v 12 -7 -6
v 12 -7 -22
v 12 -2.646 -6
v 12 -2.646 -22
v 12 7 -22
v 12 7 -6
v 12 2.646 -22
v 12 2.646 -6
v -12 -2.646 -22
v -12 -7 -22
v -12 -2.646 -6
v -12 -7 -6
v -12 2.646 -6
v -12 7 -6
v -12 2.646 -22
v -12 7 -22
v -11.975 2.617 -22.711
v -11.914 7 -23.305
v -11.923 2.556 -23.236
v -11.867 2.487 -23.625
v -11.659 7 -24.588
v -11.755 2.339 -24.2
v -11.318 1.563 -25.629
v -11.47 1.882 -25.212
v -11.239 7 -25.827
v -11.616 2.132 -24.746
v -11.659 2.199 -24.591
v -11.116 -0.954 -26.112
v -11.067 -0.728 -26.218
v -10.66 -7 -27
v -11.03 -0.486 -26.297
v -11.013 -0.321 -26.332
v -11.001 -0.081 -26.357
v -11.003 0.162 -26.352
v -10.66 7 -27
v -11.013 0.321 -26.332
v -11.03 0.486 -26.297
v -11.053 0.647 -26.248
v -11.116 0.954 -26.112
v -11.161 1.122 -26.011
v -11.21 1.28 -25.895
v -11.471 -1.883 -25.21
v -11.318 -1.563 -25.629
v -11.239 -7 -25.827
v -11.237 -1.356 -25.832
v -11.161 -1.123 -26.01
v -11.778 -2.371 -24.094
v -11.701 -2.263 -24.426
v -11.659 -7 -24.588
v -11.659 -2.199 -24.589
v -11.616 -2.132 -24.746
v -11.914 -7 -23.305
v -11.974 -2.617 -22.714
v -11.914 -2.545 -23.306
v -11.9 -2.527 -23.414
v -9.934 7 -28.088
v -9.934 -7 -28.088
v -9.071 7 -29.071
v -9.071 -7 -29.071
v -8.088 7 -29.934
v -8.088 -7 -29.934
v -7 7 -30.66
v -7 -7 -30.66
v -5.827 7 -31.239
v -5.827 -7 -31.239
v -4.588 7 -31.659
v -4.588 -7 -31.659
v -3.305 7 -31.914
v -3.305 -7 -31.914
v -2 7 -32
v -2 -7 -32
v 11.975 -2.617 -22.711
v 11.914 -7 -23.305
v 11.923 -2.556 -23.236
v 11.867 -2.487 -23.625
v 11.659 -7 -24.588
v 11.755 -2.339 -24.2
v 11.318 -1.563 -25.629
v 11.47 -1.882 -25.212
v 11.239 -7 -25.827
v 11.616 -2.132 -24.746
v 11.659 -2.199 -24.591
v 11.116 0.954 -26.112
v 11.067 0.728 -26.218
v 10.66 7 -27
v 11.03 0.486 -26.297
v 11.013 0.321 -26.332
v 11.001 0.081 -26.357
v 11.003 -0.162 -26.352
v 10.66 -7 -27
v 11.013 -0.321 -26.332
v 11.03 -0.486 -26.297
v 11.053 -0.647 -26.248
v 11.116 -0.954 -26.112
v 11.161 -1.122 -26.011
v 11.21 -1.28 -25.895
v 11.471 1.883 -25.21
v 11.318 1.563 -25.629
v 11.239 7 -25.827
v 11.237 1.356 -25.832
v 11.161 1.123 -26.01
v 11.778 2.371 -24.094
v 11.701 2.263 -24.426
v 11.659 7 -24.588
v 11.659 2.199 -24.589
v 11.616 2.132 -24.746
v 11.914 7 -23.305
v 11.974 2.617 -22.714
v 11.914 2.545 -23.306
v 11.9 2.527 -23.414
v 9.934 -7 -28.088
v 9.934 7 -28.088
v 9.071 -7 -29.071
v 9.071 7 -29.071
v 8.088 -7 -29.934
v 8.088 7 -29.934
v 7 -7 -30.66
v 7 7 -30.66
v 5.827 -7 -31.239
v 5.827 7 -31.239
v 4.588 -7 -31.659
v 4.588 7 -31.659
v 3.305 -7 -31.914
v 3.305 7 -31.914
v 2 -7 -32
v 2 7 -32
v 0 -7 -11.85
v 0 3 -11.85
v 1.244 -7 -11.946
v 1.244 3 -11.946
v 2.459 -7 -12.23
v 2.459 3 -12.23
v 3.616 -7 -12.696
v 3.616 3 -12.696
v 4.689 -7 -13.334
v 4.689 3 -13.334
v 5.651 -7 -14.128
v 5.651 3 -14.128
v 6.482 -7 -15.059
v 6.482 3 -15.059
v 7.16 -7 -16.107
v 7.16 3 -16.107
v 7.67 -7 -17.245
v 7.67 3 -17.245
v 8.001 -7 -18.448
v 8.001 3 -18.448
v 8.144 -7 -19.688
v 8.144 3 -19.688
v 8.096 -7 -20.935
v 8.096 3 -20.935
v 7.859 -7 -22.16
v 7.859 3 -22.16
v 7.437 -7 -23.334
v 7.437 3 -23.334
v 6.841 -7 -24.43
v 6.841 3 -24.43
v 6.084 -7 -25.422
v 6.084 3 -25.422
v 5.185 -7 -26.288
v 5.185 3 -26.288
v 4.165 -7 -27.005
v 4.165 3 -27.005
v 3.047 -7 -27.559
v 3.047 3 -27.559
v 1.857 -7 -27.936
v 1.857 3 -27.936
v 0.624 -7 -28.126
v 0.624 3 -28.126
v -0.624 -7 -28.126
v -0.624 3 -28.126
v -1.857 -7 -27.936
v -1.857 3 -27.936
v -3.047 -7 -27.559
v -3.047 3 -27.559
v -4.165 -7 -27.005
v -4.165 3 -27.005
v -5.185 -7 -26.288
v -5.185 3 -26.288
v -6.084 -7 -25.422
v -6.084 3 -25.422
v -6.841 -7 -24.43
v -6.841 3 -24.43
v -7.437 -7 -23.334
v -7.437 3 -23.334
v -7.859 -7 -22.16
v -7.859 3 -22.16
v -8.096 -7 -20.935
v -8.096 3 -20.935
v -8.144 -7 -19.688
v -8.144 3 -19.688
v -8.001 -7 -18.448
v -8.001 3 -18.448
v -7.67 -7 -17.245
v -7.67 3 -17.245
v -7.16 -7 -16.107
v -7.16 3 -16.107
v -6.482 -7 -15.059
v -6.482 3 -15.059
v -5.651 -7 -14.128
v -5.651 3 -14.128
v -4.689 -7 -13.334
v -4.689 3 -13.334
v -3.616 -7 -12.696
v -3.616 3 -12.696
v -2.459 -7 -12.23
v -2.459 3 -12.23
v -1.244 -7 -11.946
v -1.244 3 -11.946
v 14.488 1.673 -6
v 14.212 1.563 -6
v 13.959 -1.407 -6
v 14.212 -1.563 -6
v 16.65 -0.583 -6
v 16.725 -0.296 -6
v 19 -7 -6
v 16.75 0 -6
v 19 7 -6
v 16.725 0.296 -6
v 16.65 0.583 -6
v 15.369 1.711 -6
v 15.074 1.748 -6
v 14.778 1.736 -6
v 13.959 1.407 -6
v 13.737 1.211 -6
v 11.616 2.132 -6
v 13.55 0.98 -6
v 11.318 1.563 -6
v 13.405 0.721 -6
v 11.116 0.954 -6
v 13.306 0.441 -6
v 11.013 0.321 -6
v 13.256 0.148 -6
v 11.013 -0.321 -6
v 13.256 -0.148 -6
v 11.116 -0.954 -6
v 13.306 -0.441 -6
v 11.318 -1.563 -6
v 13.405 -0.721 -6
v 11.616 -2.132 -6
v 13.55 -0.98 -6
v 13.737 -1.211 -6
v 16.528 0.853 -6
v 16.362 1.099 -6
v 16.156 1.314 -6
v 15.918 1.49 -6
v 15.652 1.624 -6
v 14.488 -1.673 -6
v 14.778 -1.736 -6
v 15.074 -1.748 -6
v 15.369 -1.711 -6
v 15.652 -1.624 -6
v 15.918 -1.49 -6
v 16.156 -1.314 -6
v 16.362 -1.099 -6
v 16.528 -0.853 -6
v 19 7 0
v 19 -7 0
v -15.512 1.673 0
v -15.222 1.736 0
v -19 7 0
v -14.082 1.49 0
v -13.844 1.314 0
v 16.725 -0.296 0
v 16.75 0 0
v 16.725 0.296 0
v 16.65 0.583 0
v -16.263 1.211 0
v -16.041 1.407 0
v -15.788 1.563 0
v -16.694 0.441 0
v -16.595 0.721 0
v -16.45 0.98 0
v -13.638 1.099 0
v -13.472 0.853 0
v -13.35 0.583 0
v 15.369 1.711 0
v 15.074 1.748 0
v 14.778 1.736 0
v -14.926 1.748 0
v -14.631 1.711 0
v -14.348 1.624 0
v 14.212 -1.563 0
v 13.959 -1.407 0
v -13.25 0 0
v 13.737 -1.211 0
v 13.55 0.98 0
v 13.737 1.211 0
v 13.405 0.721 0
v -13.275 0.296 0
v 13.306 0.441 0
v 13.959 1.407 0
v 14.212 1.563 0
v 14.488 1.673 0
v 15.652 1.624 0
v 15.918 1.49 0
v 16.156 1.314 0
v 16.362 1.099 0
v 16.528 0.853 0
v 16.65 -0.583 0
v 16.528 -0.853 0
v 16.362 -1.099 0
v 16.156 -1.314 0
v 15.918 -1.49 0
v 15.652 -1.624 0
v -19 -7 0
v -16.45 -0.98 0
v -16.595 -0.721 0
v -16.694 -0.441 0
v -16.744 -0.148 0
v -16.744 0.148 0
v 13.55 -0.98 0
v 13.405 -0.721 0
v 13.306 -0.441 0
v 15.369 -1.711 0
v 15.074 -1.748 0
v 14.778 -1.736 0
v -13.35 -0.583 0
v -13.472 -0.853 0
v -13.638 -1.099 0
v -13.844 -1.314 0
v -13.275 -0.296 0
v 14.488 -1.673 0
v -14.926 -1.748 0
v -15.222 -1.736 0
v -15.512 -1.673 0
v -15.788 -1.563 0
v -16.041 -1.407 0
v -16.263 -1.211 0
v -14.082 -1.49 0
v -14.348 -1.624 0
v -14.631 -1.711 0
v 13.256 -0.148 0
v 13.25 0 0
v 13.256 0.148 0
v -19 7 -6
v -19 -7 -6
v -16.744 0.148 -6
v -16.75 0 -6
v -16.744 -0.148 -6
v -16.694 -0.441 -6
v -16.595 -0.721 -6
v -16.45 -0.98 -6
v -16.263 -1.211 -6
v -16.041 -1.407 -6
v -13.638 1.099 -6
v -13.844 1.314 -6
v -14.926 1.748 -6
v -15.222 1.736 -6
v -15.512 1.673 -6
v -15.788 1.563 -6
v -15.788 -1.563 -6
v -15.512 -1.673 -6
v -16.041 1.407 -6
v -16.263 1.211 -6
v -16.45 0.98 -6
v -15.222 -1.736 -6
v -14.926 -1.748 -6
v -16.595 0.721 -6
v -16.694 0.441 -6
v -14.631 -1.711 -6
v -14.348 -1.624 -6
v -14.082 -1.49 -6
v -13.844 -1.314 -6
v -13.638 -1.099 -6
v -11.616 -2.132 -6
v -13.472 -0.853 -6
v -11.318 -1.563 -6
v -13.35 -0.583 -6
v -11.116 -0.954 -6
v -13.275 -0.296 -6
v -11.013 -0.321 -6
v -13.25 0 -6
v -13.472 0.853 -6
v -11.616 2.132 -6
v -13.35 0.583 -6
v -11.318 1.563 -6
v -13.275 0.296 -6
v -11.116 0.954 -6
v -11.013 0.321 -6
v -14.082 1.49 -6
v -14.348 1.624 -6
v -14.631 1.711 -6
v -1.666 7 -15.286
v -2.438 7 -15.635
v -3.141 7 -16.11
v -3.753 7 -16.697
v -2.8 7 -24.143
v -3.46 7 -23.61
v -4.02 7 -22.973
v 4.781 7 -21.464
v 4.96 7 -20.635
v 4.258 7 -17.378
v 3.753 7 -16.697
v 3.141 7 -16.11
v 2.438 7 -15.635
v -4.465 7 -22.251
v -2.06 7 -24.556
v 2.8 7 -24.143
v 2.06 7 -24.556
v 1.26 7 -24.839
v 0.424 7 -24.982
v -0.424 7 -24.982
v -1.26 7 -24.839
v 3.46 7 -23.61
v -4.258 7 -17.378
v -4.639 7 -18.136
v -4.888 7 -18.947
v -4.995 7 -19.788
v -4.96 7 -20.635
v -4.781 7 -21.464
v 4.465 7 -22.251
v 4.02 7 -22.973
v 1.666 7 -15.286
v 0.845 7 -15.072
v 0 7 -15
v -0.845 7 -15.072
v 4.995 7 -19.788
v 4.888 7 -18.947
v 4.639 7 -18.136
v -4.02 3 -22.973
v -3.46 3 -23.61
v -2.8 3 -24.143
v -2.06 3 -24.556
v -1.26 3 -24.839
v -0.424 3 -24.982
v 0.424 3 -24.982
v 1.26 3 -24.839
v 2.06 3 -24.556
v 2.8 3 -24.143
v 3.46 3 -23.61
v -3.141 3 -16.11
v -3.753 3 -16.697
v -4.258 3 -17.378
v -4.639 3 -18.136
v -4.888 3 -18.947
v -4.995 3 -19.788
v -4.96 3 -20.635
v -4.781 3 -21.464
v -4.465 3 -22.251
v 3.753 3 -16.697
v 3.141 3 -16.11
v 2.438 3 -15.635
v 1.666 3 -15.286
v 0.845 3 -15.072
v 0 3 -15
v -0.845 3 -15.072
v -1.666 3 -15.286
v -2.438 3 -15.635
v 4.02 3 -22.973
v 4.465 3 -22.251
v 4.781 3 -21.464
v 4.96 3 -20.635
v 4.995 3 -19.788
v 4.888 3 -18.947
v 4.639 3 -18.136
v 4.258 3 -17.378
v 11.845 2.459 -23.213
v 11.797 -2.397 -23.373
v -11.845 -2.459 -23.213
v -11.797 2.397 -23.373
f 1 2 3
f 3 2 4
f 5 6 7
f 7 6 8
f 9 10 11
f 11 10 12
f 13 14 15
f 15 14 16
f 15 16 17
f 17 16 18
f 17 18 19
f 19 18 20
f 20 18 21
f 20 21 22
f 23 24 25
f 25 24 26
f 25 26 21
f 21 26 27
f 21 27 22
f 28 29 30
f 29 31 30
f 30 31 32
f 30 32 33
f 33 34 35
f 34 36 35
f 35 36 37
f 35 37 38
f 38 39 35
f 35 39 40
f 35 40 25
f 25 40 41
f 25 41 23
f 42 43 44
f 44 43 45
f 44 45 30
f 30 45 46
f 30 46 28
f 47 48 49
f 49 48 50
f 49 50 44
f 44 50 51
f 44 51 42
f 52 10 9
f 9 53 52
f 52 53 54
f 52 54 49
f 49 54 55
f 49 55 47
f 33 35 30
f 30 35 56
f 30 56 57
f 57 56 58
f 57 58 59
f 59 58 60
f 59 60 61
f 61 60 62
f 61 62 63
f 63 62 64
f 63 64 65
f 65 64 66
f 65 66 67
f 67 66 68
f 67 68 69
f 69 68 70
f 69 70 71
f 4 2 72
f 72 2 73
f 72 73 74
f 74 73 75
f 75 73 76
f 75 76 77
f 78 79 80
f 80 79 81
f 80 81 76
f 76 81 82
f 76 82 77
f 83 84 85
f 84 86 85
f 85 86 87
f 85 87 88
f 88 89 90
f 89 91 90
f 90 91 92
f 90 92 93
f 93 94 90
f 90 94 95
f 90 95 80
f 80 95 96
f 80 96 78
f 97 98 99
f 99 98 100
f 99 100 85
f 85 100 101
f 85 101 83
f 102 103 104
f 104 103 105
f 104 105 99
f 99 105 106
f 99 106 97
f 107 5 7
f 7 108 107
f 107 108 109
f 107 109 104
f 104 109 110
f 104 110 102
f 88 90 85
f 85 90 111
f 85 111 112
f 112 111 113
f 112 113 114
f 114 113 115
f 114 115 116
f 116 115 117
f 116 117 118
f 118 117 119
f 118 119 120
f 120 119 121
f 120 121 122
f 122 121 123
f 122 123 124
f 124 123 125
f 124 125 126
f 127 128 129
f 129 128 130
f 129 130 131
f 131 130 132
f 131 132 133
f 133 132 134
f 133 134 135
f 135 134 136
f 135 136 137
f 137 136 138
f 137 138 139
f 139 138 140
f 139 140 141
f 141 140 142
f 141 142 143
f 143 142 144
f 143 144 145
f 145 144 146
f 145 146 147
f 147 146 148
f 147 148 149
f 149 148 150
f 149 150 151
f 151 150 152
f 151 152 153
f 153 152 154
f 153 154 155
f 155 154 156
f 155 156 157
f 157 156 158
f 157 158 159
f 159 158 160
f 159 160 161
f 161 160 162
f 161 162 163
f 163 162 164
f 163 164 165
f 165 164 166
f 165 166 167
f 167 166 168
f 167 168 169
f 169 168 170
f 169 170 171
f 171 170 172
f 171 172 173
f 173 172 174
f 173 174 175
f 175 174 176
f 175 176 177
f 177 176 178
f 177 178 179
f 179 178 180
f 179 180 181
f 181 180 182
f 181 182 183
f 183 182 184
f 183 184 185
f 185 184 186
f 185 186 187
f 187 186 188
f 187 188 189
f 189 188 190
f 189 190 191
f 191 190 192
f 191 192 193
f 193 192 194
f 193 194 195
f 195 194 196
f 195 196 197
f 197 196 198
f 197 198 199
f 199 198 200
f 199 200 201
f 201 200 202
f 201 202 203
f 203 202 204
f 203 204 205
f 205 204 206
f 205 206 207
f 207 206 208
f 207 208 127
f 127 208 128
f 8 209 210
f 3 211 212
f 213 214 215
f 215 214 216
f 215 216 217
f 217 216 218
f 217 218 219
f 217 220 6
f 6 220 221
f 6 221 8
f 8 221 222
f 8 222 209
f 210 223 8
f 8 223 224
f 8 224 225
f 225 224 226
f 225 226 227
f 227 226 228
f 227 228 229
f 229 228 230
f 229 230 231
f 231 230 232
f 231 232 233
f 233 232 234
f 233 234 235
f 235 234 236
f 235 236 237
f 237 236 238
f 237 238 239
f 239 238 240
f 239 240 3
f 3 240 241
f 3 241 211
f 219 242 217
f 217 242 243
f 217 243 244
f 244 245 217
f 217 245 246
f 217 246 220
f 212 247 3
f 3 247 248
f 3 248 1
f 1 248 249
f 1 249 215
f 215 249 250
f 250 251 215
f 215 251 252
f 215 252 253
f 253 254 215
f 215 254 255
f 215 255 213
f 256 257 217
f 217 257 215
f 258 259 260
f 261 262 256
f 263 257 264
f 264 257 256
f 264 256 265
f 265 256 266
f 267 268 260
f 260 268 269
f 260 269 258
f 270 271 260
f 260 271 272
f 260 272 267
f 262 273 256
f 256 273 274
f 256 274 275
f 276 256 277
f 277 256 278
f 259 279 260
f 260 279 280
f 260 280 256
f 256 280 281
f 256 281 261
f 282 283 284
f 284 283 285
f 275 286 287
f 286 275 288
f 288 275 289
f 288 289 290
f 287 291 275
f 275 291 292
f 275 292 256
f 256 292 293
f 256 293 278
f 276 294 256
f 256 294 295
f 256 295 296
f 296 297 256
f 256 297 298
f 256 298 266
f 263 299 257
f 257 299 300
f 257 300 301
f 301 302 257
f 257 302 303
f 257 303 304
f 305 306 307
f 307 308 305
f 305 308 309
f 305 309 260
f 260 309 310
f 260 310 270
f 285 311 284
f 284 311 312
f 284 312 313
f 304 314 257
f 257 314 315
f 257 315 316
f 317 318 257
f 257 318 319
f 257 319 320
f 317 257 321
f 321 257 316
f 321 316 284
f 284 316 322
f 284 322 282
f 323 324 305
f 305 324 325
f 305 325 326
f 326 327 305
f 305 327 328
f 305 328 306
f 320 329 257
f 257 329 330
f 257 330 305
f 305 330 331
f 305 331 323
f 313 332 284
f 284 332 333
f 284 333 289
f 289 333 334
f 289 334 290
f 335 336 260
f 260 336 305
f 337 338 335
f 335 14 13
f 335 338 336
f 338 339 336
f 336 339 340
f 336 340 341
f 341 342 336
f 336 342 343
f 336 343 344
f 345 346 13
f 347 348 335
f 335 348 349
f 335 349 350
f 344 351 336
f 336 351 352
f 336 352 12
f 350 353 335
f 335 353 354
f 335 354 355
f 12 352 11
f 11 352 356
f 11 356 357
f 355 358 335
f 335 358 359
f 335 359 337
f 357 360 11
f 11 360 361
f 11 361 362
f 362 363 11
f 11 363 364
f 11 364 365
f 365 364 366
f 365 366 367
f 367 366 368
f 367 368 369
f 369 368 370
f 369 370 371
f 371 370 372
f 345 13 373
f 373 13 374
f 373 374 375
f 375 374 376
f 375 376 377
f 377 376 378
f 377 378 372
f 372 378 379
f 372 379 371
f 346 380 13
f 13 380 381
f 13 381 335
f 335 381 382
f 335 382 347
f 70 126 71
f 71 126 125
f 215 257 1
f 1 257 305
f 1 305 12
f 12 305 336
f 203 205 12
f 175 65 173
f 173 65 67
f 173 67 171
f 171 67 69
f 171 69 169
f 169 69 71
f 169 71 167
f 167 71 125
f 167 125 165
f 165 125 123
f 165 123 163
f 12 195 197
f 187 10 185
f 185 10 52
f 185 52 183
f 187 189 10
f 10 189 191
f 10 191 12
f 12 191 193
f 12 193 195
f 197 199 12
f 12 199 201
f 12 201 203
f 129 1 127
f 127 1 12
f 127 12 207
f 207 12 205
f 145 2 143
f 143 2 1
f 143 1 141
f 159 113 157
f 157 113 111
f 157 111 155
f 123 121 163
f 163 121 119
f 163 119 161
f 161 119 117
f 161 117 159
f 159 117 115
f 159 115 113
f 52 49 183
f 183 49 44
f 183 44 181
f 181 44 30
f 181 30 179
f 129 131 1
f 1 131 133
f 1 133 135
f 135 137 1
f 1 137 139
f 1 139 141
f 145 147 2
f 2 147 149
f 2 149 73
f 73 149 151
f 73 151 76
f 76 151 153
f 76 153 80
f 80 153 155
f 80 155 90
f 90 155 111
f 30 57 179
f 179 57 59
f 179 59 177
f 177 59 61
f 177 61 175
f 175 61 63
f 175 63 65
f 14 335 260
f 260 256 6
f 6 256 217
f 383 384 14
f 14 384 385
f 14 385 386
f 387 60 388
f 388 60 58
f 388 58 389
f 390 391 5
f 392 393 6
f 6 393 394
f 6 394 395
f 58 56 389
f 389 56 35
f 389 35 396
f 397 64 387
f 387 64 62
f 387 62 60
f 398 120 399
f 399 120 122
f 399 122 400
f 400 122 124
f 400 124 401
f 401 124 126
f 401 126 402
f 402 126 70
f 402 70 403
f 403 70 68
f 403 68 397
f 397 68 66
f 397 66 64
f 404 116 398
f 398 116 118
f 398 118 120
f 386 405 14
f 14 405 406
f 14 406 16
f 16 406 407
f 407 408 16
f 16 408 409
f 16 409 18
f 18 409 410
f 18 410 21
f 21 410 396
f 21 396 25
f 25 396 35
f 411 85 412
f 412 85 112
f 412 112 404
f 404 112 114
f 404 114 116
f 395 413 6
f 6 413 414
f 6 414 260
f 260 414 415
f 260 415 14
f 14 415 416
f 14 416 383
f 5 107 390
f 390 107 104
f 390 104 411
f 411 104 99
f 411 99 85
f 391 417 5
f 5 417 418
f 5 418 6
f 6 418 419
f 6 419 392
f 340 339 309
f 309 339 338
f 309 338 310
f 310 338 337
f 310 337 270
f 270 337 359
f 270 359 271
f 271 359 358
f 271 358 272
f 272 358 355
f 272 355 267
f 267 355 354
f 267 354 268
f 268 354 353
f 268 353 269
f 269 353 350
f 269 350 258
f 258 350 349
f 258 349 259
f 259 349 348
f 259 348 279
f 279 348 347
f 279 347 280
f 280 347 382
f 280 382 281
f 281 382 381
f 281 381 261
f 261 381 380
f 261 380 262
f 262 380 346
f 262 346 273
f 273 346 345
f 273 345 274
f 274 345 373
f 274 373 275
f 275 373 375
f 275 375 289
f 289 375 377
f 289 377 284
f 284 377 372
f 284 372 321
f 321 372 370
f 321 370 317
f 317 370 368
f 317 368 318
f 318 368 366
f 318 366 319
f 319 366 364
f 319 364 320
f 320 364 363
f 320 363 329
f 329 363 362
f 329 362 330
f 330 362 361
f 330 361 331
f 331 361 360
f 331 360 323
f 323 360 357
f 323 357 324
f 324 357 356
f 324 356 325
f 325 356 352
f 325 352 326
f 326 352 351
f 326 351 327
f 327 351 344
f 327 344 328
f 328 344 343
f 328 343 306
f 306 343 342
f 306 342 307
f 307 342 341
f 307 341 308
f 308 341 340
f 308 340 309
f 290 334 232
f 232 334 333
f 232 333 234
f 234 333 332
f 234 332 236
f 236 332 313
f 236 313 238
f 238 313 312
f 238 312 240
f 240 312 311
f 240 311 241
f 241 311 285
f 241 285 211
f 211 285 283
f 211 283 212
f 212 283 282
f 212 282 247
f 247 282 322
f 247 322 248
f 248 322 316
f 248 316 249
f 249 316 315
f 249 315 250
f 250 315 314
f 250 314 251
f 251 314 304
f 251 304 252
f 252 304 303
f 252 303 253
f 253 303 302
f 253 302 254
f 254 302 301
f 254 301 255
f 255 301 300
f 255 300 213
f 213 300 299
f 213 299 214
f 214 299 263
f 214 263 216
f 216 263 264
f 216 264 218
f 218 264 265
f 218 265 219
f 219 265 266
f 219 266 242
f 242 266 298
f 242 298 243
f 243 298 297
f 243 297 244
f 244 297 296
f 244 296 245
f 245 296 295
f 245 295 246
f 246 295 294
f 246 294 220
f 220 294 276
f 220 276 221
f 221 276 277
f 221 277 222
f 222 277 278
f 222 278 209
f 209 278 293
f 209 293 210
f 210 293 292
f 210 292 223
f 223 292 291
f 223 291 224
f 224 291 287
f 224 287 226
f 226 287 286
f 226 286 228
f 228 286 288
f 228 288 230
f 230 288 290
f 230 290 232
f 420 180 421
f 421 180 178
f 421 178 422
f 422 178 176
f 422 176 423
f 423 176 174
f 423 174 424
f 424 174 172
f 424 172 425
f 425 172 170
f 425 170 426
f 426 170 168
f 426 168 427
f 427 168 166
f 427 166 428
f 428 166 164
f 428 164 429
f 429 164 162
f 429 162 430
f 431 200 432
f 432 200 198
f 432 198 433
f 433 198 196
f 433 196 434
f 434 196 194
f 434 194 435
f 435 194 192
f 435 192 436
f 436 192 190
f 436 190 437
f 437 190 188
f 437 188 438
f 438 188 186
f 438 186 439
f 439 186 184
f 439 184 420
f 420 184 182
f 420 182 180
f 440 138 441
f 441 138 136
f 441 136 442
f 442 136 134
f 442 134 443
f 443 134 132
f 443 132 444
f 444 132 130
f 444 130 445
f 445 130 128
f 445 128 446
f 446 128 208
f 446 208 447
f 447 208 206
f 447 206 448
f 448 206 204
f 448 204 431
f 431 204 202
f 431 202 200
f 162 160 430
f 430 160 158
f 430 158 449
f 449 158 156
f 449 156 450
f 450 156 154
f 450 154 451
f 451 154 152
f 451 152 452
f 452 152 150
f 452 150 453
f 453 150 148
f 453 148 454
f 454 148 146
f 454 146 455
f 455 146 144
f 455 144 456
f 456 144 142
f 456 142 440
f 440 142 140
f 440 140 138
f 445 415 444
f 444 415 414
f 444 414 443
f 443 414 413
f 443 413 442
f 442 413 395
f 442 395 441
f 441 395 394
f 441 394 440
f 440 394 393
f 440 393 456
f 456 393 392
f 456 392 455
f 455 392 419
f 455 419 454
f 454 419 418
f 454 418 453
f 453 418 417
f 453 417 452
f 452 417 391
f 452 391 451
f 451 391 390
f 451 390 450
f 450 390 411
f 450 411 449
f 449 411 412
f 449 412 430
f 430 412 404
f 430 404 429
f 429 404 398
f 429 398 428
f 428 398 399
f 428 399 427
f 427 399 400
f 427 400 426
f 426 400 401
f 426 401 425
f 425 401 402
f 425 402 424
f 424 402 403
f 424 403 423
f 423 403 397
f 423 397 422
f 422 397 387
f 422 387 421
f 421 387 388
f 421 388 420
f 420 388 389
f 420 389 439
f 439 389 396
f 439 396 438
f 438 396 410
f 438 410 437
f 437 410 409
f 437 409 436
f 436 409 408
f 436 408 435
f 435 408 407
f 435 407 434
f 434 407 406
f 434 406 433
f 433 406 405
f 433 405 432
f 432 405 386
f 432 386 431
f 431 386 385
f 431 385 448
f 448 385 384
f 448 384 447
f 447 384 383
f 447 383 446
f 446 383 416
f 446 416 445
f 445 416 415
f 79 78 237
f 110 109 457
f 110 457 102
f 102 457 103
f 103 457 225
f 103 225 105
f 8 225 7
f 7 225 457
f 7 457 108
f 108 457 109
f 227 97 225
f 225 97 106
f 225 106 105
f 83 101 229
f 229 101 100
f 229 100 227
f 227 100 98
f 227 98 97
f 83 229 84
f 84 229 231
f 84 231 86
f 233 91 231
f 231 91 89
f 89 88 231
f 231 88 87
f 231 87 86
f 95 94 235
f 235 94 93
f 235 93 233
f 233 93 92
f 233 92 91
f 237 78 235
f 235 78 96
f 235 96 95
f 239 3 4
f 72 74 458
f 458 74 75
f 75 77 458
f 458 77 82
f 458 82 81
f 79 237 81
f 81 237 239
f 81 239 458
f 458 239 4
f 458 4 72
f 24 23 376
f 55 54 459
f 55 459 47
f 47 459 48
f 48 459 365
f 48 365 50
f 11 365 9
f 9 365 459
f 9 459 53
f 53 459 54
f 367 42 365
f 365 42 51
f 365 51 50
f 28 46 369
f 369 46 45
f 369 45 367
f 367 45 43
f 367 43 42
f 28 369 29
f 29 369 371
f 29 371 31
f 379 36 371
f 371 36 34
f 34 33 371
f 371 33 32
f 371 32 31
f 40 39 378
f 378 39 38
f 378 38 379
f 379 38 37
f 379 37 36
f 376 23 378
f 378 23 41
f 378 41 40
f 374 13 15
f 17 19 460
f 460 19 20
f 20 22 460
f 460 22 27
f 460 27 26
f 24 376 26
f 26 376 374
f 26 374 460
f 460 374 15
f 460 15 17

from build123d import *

# Parameters (mm, degrees)
BOSS_EXTRUDE1_DEPTH      = 7
BOSS_EXTRUDE1_DEPTH_BACK = 7
SKETCH1_R                = 8.15
CUT_EXTRUDE1_REACH       = 39.868
SKETCH2_R                = 1.75
FILLET1_R                = 10
SKETCH3_R                = 8.998813241
SKETCH3_R_2              = 5
BOSS_EXTRUDE2_DEPTH      = 4
CUT_EXTRUDE2_REACH       = 34.955
SKETCH4_R                = 4


with BuildPart() as part:
    # Sketch1 → Boss-Extrude1 (new, two sides: drawn at the far end of the back side and taken through both)
    with BuildSketch(Plane(origin=(0, 0, 0), x_dir=(1, 0, 0), z_dir=(0, 1, 0)).offset(-BOSS_EXTRUDE1_DEPTH_BACK)):
        Polygon((-19, 6), (-19, 0), (19, 0), (19, 6), (12, 6), (12, 32), (-12, 32), (-12, 6), align=None)
        with Locations((0, 20)):
            Circle(SKETCH1_R, mode=Mode.SUBTRACT)
    extrude(amount=BOSS_EXTRUDE1_DEPTH + BOSS_EXTRUDE1_DEPTH_BACK)

    # Sketch2 → Cut-Extrude1 (cut, up to next)
    with BuildSketch(Plane.XY, mode=Mode.PRIVATE) as cut_extrude1_sk1:
        with Locations((-15, 0)):
            Circle(SKETCH2_R)
    cut_extrude1_tool1 = extrude(cut_extrude1_sk1.sketch, amount=-CUT_EXTRUDE1_REACH, mode=Mode.PRIVATE) & part.part
    # Sketch2 → Cut-Extrude1 (cut, up to next)
    with BuildSketch(Plane.XY, mode=Mode.PRIVATE) as cut_extrude1_sk2:
        with Locations((15, 0)):
            Circle(SKETCH2_R)
    cut_extrude1_tool2 = extrude(cut_extrude1_sk2.sketch, amount=-CUT_EXTRUDE1_REACH, mode=Mode.PRIVATE) & part.part
    add(cut_extrude1_tool1.solids().sort_by_distance((-15, 0, 0))[0], mode=Mode.SUBTRACT)
    add(cut_extrude1_tool2.solids().sort_by_distance((15, 0, 0))[0], mode=Mode.SUBTRACT)

    # Fillet1
    fillet1_edges = [part.edges().sort_by_distance(p)[0] for p in [
        (-12, 0, -32),
        (12, 0, -32),
    ]]
    fillet(fillet1_edges, radius=FILLET1_R)

    # Sketch3 → Boss-Extrude2 (add)
    with BuildSketch(Plane(origin=(0, 7, 0), x_dir=(1, 0, 0), z_dir=(0, 1, 0))):
        with Locations((0, 20)):
            Circle(SKETCH3_R)
        with Locations((0, 20)):
            Circle(SKETCH3_R_2, mode=Mode.SUBTRACT)
    extrude(amount=-BOSS_EXTRUDE2_DEPTH)

    # Sketch4 → Cut-Extrude2 (cut, up to next)
    with BuildSketch(Plane(origin=(0, 0, -6), x_dir=(-1, 0, 0), z_dir=(0, 0, -1)), mode=Mode.PRIVATE) as cut_extrude2_sk1:
        with Locations((15, 0)):
            Circle(SKETCH4_R)
    cut_extrude2_tool1 = extrude(cut_extrude2_sk1.sketch, amount=CUT_EXTRUDE2_REACH, mode=Mode.PRIVATE) & part.part
    # Sketch4 → Cut-Extrude2 (cut, up to next)
    with BuildSketch(Plane(origin=(0, 0, -6), x_dir=(-1, 0, 0), z_dir=(0, 0, -1)), mode=Mode.PRIVATE) as cut_extrude2_sk2:
        with Locations((-15, 0)):
            Circle(SKETCH4_R)
    cut_extrude2_tool2 = extrude(cut_extrude2_sk2.sketch, amount=CUT_EXTRUDE2_REACH, mode=Mode.PRIVATE) & part.part
    add(cut_extrude2_tool1.solids().sort_by_distance((-15, 0, -6))[0], mode=Mode.SUBTRACT)
    add(cut_extrude2_tool2.solids().sort_by_distance((15, 0, -6))[0], mode=Mode.SUBTRACT)


solid = part.part
